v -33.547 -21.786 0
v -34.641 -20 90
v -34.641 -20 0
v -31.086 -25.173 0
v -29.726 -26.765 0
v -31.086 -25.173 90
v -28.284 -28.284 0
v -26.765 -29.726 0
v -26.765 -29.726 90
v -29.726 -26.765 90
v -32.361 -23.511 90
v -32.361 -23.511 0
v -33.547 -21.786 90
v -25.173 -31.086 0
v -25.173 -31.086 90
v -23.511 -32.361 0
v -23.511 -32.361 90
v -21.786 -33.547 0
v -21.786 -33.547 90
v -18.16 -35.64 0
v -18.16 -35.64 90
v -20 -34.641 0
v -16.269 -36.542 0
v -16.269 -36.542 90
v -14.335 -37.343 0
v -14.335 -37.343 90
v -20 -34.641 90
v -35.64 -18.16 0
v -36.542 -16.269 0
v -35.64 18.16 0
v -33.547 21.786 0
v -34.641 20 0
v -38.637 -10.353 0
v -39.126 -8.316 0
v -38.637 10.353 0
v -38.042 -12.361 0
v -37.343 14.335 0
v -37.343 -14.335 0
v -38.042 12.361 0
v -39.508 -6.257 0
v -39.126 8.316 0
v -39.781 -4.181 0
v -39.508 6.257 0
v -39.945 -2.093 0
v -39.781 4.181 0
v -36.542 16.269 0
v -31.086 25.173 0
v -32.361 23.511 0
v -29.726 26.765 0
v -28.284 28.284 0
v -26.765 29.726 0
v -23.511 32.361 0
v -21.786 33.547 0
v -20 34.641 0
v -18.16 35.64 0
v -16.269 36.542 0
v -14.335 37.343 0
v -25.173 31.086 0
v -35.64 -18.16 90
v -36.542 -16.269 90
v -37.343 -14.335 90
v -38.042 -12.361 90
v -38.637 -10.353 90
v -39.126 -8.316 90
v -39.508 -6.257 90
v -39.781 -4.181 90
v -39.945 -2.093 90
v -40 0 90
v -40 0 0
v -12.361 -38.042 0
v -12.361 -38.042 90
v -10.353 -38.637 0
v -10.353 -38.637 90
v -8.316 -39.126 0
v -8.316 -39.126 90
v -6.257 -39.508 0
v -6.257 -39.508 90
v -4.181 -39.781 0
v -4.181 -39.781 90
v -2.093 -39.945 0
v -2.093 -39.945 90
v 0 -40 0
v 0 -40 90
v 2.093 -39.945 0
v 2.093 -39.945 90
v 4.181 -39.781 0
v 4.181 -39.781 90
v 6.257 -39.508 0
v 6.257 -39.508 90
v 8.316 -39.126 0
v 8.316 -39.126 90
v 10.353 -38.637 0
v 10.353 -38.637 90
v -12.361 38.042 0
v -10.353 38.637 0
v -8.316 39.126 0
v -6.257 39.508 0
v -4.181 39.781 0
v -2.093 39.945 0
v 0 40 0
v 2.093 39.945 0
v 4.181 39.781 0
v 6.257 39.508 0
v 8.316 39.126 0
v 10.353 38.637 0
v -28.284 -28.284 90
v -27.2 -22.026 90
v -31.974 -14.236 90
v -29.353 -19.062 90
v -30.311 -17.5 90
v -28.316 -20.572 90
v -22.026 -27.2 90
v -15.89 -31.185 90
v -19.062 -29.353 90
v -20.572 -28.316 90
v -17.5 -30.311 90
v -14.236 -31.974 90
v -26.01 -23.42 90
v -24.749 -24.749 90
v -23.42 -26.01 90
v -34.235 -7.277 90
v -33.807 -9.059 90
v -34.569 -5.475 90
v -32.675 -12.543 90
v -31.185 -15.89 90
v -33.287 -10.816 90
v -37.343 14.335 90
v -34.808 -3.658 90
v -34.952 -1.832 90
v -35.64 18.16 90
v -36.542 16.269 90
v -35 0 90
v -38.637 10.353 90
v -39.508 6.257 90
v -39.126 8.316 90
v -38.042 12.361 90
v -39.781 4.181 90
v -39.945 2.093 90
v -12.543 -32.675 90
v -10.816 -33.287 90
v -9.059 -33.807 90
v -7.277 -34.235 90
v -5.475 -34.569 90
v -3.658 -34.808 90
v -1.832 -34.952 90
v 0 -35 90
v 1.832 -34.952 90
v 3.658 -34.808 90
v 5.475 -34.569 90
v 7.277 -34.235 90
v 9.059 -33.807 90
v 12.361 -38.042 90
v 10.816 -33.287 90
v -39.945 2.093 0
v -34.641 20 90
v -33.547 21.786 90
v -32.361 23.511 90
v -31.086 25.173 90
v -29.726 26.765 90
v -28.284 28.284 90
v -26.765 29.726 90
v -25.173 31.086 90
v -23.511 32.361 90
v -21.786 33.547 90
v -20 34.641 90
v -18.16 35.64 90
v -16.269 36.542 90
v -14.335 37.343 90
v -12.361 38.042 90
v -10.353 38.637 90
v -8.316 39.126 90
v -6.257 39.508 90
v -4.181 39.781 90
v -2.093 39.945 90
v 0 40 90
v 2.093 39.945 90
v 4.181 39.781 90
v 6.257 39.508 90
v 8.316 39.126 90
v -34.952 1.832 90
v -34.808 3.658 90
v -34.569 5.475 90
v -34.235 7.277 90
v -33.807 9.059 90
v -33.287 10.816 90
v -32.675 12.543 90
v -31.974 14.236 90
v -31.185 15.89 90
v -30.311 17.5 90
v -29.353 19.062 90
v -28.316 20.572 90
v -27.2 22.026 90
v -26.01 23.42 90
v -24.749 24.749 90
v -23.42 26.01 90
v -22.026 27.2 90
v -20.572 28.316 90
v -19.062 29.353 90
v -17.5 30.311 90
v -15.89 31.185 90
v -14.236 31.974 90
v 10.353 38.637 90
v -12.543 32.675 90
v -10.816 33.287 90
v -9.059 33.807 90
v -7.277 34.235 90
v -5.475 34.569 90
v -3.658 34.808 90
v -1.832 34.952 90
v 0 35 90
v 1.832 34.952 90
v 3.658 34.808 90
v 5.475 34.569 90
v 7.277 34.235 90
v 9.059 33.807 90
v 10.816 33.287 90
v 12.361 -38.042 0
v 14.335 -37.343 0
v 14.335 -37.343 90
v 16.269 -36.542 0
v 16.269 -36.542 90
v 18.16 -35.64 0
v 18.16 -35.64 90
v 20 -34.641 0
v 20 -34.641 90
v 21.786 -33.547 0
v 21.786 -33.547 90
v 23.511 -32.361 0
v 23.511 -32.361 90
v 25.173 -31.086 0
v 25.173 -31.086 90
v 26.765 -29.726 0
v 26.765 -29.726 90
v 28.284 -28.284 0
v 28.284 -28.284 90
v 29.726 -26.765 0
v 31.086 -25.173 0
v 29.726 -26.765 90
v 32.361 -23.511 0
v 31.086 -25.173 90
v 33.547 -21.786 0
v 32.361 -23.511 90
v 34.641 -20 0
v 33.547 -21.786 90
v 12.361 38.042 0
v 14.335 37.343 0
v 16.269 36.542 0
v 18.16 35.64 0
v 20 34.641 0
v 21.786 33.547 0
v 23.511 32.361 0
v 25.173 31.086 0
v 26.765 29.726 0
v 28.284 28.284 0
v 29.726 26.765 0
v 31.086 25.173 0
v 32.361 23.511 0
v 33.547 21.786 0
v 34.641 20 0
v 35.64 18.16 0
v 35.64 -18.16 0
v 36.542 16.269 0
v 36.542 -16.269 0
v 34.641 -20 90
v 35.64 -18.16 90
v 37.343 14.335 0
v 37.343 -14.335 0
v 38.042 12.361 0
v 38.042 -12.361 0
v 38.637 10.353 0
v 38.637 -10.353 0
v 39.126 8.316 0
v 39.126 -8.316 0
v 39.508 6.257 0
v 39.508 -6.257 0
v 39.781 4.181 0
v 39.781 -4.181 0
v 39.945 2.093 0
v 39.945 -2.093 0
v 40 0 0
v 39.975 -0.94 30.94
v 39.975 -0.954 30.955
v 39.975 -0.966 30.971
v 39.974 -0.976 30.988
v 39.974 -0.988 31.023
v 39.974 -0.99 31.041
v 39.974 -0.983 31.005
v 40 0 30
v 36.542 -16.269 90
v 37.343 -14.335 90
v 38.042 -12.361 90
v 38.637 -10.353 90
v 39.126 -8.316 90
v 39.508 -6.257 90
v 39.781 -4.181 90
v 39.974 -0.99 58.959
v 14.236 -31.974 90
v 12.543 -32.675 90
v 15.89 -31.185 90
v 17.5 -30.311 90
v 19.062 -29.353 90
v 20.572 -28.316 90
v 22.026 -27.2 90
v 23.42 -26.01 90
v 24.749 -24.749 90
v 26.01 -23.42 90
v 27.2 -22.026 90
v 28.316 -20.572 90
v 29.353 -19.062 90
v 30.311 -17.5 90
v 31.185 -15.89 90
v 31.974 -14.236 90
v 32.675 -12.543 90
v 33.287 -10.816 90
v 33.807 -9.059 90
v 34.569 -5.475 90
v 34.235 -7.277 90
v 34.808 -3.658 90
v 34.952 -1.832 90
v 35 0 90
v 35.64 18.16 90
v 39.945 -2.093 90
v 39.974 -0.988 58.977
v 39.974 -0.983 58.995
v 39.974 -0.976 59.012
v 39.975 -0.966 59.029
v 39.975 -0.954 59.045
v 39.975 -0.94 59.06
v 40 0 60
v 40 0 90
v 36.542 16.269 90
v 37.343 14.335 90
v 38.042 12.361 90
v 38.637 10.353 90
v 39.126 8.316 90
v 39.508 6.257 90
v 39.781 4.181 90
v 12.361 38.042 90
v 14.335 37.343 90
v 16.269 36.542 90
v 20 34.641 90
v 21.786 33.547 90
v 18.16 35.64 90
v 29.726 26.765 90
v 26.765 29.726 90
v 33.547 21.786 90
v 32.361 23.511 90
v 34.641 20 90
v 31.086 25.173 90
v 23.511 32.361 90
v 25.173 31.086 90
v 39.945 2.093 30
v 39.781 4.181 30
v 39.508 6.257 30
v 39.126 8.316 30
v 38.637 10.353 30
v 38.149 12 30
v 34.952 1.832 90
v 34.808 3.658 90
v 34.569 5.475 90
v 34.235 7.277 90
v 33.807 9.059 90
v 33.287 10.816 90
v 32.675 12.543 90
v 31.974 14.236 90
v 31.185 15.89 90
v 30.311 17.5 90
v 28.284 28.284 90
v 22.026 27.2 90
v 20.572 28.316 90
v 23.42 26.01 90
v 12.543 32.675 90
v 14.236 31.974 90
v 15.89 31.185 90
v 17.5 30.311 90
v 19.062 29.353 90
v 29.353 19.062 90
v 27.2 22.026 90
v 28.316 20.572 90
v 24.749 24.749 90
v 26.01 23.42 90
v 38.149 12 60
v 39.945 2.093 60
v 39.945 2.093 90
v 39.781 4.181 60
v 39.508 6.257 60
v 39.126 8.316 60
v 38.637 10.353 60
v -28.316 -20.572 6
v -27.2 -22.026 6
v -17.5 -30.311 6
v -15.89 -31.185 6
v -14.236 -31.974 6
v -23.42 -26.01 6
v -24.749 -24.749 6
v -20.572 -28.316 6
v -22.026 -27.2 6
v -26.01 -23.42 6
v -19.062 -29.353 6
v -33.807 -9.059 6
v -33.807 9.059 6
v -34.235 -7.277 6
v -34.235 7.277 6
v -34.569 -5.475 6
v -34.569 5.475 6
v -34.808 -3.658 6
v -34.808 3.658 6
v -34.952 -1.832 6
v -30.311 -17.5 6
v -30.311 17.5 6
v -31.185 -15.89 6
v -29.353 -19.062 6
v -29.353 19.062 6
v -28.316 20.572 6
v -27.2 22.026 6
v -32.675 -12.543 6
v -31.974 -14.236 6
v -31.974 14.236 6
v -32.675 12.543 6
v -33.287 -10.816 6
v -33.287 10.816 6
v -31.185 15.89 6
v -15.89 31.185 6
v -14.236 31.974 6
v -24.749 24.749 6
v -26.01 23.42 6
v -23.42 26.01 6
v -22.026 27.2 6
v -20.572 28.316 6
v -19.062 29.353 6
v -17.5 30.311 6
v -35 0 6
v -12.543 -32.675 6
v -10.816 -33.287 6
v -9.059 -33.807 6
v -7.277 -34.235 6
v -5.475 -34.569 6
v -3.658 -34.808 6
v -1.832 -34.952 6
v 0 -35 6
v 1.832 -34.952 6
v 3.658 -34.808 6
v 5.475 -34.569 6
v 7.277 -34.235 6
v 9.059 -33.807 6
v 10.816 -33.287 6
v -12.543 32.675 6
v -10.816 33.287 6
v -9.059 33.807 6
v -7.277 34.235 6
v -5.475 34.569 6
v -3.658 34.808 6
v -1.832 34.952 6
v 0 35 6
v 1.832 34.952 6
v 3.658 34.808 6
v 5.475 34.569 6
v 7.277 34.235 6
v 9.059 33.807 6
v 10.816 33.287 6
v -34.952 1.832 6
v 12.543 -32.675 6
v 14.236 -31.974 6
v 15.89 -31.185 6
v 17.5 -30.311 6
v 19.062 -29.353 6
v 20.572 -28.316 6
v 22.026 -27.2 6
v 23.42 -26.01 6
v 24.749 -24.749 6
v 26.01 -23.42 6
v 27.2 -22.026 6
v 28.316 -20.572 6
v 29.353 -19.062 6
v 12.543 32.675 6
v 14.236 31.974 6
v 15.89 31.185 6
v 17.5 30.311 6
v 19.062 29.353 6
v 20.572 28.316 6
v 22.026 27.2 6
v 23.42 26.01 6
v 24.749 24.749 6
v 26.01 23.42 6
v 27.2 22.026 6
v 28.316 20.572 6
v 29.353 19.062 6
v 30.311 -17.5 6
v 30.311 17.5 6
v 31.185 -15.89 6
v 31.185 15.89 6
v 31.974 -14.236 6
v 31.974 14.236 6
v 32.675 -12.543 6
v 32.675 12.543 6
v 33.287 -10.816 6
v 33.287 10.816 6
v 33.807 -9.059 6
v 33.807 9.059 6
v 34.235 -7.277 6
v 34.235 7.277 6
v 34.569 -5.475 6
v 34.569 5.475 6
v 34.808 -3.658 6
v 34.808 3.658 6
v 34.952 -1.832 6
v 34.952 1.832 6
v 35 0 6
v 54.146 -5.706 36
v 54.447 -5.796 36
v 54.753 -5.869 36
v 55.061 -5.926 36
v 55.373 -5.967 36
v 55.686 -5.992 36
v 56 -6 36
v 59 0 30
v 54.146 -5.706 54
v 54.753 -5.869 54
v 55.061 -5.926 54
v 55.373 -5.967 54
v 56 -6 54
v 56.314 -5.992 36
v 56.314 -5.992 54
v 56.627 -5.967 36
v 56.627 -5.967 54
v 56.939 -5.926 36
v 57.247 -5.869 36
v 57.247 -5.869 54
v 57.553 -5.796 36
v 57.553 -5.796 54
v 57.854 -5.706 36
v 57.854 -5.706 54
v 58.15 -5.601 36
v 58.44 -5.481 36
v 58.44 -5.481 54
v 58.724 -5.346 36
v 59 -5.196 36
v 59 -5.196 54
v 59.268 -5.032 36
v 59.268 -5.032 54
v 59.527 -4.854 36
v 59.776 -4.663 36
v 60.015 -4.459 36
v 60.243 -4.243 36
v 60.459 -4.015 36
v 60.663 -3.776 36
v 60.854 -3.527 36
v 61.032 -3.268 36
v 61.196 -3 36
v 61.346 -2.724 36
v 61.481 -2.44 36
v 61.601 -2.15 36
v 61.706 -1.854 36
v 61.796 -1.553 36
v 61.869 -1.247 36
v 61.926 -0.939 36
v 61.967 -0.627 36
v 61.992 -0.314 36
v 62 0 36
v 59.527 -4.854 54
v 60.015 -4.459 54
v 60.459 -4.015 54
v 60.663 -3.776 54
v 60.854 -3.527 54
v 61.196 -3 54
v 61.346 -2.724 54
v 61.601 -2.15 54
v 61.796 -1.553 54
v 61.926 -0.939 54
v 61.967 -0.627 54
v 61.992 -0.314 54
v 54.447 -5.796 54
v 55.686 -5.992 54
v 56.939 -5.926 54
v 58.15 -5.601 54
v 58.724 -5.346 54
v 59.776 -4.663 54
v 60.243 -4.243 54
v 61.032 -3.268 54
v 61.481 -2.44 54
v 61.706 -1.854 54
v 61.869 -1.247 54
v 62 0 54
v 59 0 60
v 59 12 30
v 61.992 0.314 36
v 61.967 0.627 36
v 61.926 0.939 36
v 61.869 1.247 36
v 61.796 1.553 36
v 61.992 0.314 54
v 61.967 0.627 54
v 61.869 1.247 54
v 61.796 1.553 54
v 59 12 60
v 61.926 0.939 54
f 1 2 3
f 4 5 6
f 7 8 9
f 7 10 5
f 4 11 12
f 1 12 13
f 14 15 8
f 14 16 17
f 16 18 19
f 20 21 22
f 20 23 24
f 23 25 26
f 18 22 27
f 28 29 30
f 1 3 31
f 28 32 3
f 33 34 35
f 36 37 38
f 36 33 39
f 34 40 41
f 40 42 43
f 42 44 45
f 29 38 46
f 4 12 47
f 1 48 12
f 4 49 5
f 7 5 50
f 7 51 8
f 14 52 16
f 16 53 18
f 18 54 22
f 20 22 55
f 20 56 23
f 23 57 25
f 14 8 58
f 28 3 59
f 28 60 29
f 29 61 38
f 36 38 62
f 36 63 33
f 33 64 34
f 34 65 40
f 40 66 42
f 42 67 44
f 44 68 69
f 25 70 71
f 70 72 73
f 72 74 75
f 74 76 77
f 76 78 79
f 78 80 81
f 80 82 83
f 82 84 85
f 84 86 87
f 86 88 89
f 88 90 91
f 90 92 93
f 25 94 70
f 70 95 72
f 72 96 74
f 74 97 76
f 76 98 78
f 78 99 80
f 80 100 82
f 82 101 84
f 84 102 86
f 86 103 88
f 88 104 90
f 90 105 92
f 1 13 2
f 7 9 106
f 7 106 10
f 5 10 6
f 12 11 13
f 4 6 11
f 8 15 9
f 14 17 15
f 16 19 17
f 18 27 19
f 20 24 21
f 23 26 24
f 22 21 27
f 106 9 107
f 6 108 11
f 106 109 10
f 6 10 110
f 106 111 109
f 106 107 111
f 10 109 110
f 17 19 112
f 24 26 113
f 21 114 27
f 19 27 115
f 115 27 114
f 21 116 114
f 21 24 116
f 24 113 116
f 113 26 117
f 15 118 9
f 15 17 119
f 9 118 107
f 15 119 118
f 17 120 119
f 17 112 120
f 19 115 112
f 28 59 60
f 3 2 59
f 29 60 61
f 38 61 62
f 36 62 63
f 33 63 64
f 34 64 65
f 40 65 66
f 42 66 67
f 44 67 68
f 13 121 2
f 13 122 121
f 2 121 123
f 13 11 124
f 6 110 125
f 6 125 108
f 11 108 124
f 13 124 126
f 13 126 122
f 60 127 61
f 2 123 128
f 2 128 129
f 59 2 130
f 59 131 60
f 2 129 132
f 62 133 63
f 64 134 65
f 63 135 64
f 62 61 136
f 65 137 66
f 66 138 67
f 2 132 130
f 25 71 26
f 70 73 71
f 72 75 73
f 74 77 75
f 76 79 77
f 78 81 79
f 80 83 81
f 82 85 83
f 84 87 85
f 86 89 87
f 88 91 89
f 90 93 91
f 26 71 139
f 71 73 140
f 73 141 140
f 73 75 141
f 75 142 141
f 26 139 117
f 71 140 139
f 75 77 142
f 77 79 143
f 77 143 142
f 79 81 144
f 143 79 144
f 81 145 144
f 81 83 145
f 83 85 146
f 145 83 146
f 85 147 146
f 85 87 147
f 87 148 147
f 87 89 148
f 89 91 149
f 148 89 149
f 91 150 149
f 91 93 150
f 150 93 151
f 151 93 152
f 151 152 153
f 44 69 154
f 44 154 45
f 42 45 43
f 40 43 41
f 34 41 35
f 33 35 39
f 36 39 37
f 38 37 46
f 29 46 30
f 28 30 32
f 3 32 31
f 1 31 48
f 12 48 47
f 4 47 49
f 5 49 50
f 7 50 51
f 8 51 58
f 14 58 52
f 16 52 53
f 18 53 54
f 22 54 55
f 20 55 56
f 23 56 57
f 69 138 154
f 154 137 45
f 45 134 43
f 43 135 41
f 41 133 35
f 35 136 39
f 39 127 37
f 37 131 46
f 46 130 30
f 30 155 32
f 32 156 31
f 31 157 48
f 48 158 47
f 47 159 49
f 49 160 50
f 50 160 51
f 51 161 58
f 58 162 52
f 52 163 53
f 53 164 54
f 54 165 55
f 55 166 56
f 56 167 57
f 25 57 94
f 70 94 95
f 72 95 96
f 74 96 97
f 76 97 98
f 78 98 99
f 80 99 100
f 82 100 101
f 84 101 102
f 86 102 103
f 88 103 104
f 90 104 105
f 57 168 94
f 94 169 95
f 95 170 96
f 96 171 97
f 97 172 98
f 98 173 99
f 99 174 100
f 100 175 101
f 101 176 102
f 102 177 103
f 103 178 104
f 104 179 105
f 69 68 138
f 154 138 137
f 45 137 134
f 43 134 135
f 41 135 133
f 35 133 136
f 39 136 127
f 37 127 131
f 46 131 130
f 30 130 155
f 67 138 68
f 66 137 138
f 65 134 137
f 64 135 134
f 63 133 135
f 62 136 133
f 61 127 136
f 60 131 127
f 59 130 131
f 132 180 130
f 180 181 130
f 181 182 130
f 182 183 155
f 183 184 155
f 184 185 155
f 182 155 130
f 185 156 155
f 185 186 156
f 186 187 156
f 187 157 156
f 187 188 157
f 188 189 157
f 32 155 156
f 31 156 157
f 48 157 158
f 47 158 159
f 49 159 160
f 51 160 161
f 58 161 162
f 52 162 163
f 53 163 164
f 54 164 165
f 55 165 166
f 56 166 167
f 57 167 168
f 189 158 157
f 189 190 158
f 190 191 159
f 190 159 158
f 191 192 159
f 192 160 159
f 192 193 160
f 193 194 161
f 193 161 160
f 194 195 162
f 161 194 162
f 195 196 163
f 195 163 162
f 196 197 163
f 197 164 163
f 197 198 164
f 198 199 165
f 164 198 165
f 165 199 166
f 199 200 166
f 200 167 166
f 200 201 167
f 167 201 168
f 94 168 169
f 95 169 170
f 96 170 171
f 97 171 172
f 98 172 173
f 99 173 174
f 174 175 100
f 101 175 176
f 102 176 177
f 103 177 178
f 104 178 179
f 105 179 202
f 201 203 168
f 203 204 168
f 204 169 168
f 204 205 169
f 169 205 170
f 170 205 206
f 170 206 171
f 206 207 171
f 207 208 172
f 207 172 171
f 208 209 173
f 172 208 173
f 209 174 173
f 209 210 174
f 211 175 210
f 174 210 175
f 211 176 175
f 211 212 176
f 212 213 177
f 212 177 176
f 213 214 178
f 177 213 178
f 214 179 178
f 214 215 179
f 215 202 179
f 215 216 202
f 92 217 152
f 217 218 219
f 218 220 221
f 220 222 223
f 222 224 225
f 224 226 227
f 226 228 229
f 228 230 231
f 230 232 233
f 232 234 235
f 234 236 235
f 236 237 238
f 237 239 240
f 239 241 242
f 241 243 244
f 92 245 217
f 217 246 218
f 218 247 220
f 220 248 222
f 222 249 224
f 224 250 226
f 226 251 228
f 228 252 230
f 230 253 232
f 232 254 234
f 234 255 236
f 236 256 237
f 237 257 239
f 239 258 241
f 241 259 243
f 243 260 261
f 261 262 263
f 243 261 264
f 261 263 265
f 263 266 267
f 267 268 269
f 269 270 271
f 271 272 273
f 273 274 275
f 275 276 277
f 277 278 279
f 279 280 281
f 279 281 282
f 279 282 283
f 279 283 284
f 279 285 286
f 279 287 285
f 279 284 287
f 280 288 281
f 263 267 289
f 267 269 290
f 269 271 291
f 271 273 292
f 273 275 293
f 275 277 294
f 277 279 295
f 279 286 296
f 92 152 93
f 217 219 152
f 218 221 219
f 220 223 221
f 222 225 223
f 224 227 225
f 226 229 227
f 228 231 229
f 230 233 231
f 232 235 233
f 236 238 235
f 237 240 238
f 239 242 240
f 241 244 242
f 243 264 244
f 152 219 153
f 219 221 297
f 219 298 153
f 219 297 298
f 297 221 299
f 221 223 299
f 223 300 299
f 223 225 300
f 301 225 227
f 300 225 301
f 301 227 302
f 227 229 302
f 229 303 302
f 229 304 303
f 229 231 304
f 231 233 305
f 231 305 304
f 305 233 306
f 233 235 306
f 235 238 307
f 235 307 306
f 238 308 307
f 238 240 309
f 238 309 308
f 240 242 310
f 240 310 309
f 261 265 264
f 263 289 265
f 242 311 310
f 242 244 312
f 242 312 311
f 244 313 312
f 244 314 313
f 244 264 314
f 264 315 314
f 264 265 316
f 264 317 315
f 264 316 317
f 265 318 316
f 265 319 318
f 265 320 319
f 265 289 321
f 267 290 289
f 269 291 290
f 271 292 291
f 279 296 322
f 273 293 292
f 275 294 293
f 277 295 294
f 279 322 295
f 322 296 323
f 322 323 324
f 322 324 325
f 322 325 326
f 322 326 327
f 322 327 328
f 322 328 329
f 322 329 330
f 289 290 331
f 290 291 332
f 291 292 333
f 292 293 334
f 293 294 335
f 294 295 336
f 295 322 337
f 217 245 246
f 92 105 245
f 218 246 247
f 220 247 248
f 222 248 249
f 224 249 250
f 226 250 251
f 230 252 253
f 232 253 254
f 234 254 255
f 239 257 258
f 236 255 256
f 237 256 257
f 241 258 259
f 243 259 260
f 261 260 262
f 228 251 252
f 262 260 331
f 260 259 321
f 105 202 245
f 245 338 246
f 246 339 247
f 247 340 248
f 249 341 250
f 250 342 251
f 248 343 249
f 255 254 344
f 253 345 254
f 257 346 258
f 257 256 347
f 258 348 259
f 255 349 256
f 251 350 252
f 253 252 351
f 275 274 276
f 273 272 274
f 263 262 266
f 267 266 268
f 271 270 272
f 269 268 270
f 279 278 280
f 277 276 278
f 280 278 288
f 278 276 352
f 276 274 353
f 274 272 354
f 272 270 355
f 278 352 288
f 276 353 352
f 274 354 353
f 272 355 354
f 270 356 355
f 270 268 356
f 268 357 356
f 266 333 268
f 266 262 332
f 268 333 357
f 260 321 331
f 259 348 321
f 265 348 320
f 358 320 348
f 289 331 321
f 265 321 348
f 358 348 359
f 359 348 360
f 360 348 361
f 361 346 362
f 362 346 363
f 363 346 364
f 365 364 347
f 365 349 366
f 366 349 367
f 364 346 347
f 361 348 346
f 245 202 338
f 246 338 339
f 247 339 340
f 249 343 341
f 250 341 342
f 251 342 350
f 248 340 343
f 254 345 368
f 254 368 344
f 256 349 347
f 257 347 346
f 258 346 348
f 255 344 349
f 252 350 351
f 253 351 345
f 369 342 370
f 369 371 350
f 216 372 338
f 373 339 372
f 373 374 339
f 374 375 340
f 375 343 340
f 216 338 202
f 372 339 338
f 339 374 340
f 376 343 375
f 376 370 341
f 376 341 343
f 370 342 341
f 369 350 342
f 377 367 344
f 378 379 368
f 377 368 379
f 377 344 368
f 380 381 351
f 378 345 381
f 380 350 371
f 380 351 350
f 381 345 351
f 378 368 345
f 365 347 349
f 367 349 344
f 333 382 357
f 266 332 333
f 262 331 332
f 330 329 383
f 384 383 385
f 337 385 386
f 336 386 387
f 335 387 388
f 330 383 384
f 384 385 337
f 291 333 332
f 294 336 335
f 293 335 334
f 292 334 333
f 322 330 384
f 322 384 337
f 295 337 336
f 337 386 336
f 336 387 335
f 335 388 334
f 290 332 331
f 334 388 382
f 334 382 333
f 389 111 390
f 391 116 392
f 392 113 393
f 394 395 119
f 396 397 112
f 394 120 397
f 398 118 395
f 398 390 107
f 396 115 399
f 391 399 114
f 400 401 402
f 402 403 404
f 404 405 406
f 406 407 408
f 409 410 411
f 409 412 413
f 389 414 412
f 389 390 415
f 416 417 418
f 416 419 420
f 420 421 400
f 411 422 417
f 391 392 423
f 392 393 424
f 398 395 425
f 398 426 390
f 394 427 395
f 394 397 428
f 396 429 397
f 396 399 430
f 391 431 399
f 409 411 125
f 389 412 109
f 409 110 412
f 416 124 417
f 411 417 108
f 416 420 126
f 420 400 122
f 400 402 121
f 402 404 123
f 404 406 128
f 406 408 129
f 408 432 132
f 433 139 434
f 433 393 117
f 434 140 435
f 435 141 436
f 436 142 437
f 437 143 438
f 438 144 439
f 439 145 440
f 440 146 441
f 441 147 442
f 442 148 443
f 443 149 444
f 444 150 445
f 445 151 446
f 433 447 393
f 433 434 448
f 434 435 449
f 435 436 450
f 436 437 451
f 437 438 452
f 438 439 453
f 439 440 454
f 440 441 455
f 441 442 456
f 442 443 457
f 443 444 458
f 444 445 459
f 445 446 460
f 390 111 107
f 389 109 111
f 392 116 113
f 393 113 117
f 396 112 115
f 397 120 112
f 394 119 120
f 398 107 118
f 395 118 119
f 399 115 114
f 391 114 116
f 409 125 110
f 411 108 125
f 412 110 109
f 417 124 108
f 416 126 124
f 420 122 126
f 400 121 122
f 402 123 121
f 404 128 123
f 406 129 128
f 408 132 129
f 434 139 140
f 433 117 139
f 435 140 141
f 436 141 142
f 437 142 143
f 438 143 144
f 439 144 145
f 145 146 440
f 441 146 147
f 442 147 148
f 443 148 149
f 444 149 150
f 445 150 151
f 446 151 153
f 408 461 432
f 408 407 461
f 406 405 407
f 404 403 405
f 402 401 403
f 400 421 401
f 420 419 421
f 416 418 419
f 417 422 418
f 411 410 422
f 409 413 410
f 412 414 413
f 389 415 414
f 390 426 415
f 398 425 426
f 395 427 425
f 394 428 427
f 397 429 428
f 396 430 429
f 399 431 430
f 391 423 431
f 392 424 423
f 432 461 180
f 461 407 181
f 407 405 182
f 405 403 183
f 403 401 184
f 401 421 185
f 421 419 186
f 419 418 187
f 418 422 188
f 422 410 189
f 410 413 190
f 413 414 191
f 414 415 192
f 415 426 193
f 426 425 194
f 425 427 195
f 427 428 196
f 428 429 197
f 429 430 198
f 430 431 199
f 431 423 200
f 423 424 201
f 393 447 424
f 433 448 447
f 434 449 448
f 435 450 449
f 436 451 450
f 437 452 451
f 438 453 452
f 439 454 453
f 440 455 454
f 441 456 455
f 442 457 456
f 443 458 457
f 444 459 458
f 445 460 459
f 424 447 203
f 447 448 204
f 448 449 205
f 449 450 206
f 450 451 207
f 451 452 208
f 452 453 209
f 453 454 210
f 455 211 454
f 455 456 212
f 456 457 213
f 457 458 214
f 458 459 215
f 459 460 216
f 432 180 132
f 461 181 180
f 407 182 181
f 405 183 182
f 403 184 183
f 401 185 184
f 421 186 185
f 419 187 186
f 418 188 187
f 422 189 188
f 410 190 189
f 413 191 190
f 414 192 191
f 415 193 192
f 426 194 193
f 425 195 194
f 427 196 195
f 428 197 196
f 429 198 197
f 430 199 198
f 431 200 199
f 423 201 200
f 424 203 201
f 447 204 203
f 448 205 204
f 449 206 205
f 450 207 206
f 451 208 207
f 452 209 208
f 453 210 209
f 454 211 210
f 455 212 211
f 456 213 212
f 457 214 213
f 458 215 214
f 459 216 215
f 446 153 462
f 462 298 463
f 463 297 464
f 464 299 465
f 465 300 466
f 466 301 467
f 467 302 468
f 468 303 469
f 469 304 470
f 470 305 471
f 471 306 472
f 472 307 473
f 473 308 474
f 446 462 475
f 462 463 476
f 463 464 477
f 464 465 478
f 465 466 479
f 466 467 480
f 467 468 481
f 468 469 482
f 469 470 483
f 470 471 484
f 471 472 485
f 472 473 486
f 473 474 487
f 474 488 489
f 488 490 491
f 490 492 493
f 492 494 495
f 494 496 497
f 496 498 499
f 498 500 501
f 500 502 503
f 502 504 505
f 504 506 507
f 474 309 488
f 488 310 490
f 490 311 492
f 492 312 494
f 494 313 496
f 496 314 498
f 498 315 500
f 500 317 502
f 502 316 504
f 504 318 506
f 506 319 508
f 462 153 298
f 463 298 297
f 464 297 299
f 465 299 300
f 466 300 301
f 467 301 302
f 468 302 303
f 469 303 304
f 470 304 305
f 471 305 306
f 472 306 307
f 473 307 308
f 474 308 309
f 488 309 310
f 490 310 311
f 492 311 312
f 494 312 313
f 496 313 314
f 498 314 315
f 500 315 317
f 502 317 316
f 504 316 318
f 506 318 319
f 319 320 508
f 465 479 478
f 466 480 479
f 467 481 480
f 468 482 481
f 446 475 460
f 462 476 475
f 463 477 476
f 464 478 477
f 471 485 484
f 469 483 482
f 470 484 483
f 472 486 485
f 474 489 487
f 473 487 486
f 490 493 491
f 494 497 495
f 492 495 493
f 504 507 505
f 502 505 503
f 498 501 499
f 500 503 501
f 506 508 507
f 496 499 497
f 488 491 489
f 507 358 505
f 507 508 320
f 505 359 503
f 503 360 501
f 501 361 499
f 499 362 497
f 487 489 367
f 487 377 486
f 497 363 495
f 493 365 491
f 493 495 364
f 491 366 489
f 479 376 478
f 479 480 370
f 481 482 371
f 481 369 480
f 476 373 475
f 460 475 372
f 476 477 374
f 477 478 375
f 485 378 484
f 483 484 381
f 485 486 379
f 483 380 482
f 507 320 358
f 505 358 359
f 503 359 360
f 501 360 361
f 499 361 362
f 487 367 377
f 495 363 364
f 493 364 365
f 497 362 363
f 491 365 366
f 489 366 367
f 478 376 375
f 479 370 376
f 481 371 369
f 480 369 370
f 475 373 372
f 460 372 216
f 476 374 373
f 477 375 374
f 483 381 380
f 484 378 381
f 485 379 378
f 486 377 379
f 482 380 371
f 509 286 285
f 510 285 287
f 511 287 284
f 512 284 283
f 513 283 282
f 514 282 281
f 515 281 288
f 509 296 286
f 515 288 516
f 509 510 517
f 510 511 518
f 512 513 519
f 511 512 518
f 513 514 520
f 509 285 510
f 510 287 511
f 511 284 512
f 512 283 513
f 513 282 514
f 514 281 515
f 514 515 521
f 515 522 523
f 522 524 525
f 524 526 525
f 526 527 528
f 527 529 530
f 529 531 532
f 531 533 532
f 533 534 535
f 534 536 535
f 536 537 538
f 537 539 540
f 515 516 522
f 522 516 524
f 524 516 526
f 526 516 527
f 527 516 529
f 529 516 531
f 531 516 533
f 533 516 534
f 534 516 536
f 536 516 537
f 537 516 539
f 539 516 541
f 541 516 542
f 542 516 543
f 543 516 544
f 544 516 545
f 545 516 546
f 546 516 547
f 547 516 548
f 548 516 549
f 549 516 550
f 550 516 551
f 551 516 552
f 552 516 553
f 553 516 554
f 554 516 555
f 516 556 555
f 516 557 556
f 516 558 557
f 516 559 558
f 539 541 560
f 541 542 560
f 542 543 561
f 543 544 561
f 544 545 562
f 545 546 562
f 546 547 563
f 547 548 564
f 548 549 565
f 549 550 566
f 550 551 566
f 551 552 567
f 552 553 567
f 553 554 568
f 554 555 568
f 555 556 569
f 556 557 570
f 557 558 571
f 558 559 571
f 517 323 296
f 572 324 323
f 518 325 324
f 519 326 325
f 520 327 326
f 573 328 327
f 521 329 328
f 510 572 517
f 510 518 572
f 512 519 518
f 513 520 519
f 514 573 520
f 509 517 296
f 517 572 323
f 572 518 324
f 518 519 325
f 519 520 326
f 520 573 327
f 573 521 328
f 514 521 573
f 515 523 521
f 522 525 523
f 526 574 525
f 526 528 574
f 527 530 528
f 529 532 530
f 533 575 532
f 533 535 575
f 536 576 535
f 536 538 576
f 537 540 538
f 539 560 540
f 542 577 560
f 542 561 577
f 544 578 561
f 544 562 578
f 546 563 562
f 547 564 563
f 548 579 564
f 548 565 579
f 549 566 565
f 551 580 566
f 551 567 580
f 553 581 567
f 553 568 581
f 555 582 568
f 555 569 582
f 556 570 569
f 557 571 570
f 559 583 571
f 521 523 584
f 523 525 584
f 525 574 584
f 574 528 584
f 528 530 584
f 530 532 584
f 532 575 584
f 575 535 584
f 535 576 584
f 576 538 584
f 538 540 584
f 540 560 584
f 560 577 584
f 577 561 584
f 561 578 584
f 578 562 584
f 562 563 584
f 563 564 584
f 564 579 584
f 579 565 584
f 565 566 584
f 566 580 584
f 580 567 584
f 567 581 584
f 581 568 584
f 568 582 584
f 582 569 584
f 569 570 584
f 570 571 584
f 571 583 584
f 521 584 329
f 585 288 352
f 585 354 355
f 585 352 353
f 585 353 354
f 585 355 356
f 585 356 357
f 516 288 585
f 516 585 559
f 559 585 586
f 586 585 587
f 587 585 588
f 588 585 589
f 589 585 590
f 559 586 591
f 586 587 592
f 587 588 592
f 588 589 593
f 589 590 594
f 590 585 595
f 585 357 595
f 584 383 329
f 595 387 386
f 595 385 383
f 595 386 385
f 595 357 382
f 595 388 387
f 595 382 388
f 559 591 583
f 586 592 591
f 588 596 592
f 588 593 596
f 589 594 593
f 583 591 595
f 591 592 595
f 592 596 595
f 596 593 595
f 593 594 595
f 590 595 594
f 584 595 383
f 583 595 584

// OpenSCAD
// マグカップのパラメータ
outer_dia = 80;
inner_dia = 70;
height = 90;
bottom_thick = 6;
wall_thick = (outer_dia - inner_dia) / 2; // 5mm

// 取手のパラメータ
handle_inner_w = 25; // X方向の幅 (本体からの突き出し量)
handle_inner_h = 30; // Z方向の高さ
handle_thick = 12;   // 取手の太さ (Y方向の厚み)
handle_bar_d = 12;   // D字の太さ

// 円滑な描画のための設定
$fn = 120;

module mug() {
    // メインボディと取手を一体化
    union() {
        // 1. マグカップ本体 (中空の円筒)
        difference() {
            // 外側の円筒
            cylinder(h = height, d = outer_dia);
            
            // 内側のくり抜き (底面を6mm残す)
            translate([0, 0, bottom_thick])
                cylinder(h = height - bottom_thick + 1, d = inner_dia);
        }

        // 2. 指定方向(+X軸方向)の取手
        // マグの高さ方向の中央に配置
        z_pos = (height - handle_inner_h) / 2;
        
        // 本体との確実に結合するための埋め込み幅
        embed = 3; 
        
        translate([outer_dia / 2 - embed, 0, z_pos]) {
            // D字型の取手を作成
            // Y軸中心に対象にするため、全体をY方向にオフセット
            translate([0, -handle_thick / 2, 0]) {
                hull() {
                    // 取手の上部固定部
                    translate([0, handle_thick / 2, 0])
                        cube([embed + handle_inner_w - handle_thick/2, handle_thick, handle_bar_d]);
                    
                    // 取手の下部固定部
                    translate([0, handle_thick / 2, handle_inner_h - handle_bar_d])
                        cube([embed + handle_inner_w - handle_thick/2, handle_thick, handle_bar_d]);
                    
                    // 取手の外側アール部分 (半円)
                    translate([handle_inner_w - handle_bar_d/2, handle_thick / 2, handle_bar_d/2])
                        cylinder(h = handle_inner_h - handle_bar_d, d = handle_bar_d);
                }
            }
        }
    }
}

// 実行
mug();
